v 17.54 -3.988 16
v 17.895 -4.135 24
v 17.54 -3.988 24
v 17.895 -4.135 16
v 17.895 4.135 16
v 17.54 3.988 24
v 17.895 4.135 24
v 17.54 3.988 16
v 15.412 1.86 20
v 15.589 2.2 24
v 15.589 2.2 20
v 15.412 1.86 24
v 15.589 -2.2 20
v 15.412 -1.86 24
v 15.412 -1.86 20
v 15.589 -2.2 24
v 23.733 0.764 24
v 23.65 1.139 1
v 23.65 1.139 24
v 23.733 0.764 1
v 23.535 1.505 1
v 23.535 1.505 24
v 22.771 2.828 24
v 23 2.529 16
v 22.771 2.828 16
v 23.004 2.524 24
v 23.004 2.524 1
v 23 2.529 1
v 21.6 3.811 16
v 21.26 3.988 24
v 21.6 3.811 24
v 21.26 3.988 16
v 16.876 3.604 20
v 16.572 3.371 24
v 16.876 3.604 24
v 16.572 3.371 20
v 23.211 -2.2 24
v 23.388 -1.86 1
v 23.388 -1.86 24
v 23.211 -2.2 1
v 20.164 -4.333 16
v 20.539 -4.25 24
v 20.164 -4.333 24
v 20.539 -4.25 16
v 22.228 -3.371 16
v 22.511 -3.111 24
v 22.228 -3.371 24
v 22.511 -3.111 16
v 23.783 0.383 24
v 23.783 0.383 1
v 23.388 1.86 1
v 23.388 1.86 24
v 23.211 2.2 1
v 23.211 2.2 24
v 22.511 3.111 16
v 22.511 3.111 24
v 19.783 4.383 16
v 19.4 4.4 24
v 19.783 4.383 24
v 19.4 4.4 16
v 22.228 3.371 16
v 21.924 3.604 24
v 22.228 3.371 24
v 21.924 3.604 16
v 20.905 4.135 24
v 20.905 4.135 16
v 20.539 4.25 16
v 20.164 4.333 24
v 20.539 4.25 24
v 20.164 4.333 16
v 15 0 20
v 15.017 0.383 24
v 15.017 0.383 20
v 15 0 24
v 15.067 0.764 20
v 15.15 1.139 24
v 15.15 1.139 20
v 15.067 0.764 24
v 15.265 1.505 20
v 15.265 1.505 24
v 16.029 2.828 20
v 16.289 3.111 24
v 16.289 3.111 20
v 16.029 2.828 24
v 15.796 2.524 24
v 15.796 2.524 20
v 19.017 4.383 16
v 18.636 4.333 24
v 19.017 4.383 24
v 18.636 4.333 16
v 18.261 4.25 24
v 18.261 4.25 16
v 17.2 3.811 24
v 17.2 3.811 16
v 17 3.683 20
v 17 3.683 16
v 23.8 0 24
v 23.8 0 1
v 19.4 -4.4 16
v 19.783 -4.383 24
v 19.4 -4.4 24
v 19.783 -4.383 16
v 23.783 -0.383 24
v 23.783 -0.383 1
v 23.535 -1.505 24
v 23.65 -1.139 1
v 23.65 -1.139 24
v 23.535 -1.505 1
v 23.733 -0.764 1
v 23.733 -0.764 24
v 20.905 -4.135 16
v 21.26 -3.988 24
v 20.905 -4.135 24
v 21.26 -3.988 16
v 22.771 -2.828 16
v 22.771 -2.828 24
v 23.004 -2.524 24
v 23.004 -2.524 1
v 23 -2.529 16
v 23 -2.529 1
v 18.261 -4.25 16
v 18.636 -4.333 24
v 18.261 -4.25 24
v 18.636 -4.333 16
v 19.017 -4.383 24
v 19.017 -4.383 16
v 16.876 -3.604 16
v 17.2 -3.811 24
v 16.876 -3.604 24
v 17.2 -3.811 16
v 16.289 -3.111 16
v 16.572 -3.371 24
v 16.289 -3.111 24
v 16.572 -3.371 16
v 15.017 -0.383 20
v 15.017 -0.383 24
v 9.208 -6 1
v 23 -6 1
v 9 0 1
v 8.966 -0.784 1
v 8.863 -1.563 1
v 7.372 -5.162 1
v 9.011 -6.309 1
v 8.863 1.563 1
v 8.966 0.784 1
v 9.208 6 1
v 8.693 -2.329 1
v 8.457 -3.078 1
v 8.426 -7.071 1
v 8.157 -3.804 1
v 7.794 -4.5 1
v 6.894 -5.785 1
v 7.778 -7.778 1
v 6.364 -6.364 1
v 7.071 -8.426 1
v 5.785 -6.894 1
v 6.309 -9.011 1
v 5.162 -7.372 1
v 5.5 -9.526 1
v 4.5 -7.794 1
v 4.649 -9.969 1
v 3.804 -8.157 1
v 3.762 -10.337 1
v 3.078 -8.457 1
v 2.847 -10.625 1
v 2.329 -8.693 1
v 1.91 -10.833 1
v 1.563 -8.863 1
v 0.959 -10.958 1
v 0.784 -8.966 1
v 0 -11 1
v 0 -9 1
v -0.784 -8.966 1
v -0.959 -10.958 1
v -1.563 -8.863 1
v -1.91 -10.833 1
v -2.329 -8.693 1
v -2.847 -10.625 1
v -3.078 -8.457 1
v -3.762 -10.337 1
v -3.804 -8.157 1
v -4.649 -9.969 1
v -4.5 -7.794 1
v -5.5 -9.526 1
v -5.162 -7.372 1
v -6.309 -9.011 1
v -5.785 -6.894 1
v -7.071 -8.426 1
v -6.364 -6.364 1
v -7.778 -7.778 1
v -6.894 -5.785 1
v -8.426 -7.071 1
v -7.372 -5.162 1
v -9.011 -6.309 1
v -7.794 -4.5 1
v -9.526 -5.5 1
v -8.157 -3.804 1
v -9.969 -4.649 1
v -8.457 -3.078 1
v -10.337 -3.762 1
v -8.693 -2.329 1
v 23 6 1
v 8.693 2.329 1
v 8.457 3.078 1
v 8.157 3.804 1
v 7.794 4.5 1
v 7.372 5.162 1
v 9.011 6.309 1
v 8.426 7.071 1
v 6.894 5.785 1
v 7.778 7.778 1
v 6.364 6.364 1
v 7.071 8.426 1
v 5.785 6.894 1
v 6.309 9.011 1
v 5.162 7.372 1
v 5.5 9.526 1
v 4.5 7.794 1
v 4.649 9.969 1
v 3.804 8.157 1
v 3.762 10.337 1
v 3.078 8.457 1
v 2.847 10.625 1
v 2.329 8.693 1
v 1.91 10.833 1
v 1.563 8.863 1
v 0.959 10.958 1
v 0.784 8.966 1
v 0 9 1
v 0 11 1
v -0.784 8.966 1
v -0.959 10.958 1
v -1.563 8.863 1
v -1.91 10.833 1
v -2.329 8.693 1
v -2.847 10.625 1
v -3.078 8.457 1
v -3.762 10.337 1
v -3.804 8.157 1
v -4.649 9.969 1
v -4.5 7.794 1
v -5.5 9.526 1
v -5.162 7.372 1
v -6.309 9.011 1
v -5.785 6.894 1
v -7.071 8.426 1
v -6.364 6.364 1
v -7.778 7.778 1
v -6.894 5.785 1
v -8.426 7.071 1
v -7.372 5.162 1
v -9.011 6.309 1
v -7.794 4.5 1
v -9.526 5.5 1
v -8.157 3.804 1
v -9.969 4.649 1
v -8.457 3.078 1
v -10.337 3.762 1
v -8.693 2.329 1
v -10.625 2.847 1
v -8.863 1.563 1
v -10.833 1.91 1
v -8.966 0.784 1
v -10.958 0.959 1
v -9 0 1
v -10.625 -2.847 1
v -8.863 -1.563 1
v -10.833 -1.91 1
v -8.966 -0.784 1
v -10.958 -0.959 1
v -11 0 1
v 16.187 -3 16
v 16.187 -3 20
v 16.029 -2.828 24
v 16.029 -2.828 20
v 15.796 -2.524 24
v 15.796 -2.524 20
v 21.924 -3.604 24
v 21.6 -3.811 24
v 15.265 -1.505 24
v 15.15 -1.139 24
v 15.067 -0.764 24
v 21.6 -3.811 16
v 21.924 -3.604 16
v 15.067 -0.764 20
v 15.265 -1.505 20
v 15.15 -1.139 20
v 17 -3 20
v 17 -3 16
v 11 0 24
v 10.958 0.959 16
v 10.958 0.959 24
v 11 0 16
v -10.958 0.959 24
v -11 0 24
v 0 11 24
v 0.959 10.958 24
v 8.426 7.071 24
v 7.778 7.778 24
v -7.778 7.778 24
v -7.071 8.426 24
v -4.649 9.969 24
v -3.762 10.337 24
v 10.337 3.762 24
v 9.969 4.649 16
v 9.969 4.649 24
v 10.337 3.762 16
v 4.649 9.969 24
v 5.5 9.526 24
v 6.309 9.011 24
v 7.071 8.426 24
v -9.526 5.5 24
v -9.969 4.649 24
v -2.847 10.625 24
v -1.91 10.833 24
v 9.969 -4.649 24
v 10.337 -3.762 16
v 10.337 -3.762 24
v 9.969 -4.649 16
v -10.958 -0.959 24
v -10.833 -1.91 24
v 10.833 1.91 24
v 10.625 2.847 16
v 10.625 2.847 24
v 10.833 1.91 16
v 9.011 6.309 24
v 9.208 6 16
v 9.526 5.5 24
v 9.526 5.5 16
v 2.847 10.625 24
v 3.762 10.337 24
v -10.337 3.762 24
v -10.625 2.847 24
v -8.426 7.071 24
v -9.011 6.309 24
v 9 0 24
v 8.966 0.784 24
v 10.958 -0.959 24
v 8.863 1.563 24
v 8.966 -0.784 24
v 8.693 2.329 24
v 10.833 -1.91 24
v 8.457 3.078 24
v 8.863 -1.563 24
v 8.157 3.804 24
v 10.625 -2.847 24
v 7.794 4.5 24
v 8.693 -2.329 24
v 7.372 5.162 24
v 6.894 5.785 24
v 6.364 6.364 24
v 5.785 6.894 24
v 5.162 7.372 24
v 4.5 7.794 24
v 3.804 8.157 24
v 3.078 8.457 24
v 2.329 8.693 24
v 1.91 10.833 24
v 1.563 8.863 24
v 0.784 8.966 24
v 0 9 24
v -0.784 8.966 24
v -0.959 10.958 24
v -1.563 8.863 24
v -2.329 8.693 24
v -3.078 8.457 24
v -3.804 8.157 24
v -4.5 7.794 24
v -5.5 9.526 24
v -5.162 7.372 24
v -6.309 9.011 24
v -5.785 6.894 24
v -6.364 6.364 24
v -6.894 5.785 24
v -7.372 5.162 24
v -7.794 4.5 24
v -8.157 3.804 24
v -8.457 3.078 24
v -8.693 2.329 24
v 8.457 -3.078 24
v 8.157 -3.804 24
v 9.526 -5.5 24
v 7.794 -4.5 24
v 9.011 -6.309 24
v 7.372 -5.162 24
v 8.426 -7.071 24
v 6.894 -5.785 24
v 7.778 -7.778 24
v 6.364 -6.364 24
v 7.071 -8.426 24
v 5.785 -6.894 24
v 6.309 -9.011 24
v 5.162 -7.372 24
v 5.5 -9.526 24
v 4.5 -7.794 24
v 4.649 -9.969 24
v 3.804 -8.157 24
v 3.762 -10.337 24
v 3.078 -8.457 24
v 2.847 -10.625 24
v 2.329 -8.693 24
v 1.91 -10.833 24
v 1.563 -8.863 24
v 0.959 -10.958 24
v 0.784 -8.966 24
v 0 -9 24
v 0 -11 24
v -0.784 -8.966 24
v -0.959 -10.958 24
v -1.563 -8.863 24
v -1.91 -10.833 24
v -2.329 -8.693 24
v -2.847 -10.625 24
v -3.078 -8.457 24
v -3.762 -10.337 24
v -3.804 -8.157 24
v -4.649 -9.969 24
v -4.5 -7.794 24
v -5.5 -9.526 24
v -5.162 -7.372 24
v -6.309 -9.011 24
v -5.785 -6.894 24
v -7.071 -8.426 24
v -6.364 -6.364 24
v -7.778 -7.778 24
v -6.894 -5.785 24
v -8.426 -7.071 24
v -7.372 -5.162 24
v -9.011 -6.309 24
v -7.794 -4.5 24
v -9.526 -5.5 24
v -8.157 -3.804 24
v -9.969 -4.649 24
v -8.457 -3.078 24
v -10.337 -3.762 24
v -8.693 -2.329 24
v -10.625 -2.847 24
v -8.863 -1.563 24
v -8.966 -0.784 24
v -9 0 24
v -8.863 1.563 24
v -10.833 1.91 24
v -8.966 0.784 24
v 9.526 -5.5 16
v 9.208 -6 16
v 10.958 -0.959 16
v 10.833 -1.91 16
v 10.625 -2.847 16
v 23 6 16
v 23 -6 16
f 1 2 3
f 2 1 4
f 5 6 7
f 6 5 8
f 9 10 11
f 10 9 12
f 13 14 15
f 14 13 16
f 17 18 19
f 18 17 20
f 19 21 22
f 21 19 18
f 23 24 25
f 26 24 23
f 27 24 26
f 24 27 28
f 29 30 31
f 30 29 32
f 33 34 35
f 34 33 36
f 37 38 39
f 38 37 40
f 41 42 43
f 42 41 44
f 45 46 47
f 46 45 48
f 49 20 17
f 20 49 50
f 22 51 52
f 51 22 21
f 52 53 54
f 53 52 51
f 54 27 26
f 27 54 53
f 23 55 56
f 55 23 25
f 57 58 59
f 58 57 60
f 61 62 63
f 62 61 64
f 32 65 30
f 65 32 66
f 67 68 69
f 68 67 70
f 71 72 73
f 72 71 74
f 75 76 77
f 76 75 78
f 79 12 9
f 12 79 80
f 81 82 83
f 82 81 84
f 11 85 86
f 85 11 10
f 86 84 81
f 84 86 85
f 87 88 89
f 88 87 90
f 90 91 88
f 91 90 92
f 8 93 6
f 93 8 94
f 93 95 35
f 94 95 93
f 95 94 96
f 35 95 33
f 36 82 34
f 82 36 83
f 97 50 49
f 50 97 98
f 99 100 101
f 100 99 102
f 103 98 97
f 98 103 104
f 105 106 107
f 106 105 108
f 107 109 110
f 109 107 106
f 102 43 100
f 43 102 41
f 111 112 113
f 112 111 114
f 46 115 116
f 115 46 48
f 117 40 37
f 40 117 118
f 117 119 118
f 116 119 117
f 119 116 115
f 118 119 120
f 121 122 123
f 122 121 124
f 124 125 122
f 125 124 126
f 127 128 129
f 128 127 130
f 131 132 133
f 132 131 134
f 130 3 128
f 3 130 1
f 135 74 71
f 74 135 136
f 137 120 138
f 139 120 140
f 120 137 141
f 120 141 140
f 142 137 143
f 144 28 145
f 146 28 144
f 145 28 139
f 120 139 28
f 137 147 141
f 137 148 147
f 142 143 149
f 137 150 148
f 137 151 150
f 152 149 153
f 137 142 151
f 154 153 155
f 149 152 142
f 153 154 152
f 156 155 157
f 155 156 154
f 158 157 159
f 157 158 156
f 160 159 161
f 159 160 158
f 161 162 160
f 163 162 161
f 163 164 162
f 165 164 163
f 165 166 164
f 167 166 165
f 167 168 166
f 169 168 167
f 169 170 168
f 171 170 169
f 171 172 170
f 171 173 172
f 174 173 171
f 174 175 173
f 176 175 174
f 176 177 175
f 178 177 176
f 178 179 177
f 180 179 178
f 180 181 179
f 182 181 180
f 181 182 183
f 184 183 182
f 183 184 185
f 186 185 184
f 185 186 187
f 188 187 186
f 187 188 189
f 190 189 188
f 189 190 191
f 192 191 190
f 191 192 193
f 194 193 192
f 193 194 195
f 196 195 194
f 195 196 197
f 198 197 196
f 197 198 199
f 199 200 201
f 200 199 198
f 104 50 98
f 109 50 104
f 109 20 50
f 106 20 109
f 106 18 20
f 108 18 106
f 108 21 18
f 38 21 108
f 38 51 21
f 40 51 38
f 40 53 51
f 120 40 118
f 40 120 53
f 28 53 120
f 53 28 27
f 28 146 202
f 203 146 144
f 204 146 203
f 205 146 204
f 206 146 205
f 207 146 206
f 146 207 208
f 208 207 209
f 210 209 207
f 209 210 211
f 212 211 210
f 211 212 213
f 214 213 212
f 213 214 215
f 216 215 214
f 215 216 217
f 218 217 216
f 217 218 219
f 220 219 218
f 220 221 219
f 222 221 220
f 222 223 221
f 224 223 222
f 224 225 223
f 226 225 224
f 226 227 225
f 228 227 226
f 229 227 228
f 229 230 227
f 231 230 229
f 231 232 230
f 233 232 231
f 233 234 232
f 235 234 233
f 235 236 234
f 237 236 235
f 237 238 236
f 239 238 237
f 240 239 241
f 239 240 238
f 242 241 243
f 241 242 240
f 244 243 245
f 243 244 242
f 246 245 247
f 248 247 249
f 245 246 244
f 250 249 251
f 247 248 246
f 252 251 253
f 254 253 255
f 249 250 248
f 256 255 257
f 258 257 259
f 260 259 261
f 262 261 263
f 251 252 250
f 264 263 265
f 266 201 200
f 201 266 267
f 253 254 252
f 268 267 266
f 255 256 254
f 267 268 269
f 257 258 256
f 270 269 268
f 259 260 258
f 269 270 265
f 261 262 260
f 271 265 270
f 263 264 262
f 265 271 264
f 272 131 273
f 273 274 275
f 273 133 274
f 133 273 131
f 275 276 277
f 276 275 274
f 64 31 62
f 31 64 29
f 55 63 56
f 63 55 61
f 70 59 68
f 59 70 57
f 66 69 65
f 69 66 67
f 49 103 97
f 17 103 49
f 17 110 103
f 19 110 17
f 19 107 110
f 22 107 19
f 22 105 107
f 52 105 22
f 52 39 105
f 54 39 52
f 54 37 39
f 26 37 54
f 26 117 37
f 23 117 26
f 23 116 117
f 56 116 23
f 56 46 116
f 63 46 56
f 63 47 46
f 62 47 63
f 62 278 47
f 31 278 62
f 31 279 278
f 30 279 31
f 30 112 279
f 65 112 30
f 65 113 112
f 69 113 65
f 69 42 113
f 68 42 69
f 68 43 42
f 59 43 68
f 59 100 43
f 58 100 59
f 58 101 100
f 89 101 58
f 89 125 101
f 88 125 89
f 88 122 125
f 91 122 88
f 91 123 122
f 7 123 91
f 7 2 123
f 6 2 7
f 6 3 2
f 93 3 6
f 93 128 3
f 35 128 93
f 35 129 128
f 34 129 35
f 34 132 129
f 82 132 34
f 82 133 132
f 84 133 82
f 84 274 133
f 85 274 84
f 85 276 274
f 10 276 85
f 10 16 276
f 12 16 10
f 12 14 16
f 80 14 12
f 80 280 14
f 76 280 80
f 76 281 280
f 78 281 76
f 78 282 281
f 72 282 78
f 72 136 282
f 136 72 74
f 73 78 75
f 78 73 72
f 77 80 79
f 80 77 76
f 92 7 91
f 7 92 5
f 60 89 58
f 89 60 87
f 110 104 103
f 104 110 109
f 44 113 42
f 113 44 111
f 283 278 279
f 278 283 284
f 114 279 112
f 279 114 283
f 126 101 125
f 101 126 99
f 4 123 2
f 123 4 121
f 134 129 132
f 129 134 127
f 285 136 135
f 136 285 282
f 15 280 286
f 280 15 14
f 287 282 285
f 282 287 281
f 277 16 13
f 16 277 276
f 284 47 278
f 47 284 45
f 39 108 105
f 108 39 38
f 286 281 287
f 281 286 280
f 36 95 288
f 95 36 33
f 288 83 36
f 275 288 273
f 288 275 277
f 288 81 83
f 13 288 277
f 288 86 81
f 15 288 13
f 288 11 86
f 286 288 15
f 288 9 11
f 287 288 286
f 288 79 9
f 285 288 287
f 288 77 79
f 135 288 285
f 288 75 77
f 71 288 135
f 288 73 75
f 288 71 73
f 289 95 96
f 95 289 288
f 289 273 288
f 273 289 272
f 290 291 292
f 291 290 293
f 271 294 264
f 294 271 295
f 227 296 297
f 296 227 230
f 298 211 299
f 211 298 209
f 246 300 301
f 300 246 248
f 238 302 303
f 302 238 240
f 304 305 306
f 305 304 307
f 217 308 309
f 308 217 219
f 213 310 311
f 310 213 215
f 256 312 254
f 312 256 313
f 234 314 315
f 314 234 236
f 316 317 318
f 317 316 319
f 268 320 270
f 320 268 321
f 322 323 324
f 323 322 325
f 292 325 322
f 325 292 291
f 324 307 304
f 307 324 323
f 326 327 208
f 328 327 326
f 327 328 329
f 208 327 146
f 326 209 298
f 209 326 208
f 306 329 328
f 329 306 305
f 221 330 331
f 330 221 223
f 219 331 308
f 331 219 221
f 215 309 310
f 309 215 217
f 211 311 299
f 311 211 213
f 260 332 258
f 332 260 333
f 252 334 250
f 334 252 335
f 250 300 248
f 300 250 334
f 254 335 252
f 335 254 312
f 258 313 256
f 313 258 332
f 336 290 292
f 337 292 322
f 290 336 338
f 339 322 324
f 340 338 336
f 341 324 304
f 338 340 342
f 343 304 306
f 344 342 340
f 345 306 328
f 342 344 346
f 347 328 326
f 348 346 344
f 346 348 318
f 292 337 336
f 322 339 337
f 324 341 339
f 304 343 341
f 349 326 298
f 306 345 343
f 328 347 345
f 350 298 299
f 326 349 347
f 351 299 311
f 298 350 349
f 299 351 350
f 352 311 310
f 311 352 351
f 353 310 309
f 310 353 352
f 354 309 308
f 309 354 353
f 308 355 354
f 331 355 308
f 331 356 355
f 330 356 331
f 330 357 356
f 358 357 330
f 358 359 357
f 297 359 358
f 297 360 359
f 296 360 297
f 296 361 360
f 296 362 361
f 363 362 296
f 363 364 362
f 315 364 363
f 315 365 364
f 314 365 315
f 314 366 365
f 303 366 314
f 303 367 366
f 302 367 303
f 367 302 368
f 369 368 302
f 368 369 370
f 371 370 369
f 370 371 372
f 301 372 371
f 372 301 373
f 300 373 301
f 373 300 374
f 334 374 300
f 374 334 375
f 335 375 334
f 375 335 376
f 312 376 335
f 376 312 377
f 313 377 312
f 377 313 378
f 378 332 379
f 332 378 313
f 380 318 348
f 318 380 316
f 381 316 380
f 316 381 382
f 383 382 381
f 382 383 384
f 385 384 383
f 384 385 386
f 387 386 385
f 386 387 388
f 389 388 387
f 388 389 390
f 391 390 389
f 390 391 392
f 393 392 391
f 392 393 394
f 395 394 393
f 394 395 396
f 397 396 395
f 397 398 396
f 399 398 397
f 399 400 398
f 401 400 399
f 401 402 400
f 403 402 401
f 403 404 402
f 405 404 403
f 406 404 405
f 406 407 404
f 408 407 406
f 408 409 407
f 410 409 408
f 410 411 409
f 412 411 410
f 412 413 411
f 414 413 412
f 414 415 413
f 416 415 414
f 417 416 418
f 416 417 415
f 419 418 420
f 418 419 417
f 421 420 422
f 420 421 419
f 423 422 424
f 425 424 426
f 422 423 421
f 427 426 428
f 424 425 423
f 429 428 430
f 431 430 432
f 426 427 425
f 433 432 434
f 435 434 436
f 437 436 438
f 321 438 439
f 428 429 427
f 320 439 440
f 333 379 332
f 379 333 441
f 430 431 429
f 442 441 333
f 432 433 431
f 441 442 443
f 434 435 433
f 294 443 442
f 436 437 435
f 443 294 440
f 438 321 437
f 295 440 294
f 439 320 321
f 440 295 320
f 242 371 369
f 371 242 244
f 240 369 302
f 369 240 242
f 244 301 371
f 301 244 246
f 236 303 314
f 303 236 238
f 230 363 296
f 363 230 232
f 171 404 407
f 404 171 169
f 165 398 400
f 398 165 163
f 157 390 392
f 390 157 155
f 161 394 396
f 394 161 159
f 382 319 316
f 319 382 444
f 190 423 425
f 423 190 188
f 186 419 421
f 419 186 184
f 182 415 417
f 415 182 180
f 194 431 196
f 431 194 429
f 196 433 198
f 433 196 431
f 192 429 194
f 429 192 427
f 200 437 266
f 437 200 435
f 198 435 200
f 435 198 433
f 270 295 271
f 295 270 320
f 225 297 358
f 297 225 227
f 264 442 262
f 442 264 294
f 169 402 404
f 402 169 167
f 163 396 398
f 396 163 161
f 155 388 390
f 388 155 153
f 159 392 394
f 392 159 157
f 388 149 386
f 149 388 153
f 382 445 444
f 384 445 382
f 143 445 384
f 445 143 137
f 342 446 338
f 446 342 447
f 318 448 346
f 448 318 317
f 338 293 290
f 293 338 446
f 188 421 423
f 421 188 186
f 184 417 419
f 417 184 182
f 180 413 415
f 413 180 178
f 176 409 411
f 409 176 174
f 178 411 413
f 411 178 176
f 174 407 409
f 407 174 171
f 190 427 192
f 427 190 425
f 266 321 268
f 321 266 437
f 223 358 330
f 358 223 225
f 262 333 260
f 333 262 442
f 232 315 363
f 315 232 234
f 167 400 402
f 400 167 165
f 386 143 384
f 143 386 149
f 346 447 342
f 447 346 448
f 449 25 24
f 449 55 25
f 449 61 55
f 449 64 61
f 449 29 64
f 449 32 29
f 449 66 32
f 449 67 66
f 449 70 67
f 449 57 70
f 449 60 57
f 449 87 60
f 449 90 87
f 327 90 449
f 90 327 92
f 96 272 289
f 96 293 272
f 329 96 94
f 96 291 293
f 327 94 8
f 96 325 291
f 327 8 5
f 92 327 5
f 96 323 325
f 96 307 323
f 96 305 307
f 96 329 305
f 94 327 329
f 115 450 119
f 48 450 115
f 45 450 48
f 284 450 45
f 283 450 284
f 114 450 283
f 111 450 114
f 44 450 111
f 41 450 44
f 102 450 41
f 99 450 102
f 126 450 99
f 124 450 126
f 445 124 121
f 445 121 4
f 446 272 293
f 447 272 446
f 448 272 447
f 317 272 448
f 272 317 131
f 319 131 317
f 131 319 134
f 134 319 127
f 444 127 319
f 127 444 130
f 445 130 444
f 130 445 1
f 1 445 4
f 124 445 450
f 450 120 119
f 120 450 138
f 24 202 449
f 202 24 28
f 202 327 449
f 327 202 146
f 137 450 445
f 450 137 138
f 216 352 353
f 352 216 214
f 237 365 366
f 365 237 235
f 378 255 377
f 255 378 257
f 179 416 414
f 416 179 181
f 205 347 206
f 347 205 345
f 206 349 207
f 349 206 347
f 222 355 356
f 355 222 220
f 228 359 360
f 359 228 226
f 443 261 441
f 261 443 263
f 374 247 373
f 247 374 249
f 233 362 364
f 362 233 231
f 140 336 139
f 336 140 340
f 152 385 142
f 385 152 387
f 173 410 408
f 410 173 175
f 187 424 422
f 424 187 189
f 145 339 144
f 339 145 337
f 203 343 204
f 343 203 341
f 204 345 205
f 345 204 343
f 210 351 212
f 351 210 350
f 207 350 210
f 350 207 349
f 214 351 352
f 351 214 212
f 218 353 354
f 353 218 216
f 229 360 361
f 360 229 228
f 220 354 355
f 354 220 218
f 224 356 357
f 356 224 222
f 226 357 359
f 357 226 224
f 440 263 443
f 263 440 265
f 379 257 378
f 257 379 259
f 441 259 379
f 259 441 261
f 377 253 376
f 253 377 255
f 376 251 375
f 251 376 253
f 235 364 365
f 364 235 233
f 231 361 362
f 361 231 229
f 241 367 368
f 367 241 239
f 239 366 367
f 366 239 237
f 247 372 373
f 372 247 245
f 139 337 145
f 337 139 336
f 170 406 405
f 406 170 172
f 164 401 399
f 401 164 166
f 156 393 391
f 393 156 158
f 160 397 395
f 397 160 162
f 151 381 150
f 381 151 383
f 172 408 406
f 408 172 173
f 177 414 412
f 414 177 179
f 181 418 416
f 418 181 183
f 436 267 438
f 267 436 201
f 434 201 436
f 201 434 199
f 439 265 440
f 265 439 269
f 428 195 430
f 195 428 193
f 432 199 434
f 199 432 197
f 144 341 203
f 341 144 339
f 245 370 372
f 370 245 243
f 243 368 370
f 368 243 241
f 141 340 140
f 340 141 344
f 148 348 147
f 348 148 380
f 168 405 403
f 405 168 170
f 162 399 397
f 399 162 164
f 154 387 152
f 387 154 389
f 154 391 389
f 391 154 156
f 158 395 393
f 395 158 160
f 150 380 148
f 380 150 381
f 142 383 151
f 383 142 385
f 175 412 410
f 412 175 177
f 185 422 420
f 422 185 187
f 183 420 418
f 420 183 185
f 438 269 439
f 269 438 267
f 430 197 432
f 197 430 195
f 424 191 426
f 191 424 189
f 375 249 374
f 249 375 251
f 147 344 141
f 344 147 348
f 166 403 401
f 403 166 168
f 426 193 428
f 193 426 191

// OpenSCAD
$fs = 0.1;  // Don't genrate smaller facets than 0.1 mm
$fa = 5;    // Don't generate larger angles than 5 degrees

ic = 18; // inner diameter of pipe holder
pht = 4; // thickness of the pipe holder
phh = 25; // height of pipeholder

//v2 notes: increased hook cyliender radius from 3.5 to 4, increased inner diameter of pipe holder by 1
//v3 notes: increased distance from pipeholder to hook by 1mm, made the hook base thicker, increased diamieter of hook by .8mm

union() { 
    }

hook(phh);
pipeholder(ic, pht, phh);

module pipeholder (ic, pht, phh) {
    difference () {
        union() { 
            color("yellow") translate([0,0,1]) cylinder(h=(phh-2), r=((ic/2)+(pht/2)));
            color ("purple") translate([8,-6,1]) cube ([15,12,15]);
        }
        color("Green") cylinder(h=phh, r=ic/2);
 
    }   
}
   
module hook (phh) {
    difference() {
        color("red") translate([19.4,0,1]) cylinder(h=(phh-2), r=4.4);
        color("blue") translate([14,-3,3]) cube ([3,8,17]);
    }
}
